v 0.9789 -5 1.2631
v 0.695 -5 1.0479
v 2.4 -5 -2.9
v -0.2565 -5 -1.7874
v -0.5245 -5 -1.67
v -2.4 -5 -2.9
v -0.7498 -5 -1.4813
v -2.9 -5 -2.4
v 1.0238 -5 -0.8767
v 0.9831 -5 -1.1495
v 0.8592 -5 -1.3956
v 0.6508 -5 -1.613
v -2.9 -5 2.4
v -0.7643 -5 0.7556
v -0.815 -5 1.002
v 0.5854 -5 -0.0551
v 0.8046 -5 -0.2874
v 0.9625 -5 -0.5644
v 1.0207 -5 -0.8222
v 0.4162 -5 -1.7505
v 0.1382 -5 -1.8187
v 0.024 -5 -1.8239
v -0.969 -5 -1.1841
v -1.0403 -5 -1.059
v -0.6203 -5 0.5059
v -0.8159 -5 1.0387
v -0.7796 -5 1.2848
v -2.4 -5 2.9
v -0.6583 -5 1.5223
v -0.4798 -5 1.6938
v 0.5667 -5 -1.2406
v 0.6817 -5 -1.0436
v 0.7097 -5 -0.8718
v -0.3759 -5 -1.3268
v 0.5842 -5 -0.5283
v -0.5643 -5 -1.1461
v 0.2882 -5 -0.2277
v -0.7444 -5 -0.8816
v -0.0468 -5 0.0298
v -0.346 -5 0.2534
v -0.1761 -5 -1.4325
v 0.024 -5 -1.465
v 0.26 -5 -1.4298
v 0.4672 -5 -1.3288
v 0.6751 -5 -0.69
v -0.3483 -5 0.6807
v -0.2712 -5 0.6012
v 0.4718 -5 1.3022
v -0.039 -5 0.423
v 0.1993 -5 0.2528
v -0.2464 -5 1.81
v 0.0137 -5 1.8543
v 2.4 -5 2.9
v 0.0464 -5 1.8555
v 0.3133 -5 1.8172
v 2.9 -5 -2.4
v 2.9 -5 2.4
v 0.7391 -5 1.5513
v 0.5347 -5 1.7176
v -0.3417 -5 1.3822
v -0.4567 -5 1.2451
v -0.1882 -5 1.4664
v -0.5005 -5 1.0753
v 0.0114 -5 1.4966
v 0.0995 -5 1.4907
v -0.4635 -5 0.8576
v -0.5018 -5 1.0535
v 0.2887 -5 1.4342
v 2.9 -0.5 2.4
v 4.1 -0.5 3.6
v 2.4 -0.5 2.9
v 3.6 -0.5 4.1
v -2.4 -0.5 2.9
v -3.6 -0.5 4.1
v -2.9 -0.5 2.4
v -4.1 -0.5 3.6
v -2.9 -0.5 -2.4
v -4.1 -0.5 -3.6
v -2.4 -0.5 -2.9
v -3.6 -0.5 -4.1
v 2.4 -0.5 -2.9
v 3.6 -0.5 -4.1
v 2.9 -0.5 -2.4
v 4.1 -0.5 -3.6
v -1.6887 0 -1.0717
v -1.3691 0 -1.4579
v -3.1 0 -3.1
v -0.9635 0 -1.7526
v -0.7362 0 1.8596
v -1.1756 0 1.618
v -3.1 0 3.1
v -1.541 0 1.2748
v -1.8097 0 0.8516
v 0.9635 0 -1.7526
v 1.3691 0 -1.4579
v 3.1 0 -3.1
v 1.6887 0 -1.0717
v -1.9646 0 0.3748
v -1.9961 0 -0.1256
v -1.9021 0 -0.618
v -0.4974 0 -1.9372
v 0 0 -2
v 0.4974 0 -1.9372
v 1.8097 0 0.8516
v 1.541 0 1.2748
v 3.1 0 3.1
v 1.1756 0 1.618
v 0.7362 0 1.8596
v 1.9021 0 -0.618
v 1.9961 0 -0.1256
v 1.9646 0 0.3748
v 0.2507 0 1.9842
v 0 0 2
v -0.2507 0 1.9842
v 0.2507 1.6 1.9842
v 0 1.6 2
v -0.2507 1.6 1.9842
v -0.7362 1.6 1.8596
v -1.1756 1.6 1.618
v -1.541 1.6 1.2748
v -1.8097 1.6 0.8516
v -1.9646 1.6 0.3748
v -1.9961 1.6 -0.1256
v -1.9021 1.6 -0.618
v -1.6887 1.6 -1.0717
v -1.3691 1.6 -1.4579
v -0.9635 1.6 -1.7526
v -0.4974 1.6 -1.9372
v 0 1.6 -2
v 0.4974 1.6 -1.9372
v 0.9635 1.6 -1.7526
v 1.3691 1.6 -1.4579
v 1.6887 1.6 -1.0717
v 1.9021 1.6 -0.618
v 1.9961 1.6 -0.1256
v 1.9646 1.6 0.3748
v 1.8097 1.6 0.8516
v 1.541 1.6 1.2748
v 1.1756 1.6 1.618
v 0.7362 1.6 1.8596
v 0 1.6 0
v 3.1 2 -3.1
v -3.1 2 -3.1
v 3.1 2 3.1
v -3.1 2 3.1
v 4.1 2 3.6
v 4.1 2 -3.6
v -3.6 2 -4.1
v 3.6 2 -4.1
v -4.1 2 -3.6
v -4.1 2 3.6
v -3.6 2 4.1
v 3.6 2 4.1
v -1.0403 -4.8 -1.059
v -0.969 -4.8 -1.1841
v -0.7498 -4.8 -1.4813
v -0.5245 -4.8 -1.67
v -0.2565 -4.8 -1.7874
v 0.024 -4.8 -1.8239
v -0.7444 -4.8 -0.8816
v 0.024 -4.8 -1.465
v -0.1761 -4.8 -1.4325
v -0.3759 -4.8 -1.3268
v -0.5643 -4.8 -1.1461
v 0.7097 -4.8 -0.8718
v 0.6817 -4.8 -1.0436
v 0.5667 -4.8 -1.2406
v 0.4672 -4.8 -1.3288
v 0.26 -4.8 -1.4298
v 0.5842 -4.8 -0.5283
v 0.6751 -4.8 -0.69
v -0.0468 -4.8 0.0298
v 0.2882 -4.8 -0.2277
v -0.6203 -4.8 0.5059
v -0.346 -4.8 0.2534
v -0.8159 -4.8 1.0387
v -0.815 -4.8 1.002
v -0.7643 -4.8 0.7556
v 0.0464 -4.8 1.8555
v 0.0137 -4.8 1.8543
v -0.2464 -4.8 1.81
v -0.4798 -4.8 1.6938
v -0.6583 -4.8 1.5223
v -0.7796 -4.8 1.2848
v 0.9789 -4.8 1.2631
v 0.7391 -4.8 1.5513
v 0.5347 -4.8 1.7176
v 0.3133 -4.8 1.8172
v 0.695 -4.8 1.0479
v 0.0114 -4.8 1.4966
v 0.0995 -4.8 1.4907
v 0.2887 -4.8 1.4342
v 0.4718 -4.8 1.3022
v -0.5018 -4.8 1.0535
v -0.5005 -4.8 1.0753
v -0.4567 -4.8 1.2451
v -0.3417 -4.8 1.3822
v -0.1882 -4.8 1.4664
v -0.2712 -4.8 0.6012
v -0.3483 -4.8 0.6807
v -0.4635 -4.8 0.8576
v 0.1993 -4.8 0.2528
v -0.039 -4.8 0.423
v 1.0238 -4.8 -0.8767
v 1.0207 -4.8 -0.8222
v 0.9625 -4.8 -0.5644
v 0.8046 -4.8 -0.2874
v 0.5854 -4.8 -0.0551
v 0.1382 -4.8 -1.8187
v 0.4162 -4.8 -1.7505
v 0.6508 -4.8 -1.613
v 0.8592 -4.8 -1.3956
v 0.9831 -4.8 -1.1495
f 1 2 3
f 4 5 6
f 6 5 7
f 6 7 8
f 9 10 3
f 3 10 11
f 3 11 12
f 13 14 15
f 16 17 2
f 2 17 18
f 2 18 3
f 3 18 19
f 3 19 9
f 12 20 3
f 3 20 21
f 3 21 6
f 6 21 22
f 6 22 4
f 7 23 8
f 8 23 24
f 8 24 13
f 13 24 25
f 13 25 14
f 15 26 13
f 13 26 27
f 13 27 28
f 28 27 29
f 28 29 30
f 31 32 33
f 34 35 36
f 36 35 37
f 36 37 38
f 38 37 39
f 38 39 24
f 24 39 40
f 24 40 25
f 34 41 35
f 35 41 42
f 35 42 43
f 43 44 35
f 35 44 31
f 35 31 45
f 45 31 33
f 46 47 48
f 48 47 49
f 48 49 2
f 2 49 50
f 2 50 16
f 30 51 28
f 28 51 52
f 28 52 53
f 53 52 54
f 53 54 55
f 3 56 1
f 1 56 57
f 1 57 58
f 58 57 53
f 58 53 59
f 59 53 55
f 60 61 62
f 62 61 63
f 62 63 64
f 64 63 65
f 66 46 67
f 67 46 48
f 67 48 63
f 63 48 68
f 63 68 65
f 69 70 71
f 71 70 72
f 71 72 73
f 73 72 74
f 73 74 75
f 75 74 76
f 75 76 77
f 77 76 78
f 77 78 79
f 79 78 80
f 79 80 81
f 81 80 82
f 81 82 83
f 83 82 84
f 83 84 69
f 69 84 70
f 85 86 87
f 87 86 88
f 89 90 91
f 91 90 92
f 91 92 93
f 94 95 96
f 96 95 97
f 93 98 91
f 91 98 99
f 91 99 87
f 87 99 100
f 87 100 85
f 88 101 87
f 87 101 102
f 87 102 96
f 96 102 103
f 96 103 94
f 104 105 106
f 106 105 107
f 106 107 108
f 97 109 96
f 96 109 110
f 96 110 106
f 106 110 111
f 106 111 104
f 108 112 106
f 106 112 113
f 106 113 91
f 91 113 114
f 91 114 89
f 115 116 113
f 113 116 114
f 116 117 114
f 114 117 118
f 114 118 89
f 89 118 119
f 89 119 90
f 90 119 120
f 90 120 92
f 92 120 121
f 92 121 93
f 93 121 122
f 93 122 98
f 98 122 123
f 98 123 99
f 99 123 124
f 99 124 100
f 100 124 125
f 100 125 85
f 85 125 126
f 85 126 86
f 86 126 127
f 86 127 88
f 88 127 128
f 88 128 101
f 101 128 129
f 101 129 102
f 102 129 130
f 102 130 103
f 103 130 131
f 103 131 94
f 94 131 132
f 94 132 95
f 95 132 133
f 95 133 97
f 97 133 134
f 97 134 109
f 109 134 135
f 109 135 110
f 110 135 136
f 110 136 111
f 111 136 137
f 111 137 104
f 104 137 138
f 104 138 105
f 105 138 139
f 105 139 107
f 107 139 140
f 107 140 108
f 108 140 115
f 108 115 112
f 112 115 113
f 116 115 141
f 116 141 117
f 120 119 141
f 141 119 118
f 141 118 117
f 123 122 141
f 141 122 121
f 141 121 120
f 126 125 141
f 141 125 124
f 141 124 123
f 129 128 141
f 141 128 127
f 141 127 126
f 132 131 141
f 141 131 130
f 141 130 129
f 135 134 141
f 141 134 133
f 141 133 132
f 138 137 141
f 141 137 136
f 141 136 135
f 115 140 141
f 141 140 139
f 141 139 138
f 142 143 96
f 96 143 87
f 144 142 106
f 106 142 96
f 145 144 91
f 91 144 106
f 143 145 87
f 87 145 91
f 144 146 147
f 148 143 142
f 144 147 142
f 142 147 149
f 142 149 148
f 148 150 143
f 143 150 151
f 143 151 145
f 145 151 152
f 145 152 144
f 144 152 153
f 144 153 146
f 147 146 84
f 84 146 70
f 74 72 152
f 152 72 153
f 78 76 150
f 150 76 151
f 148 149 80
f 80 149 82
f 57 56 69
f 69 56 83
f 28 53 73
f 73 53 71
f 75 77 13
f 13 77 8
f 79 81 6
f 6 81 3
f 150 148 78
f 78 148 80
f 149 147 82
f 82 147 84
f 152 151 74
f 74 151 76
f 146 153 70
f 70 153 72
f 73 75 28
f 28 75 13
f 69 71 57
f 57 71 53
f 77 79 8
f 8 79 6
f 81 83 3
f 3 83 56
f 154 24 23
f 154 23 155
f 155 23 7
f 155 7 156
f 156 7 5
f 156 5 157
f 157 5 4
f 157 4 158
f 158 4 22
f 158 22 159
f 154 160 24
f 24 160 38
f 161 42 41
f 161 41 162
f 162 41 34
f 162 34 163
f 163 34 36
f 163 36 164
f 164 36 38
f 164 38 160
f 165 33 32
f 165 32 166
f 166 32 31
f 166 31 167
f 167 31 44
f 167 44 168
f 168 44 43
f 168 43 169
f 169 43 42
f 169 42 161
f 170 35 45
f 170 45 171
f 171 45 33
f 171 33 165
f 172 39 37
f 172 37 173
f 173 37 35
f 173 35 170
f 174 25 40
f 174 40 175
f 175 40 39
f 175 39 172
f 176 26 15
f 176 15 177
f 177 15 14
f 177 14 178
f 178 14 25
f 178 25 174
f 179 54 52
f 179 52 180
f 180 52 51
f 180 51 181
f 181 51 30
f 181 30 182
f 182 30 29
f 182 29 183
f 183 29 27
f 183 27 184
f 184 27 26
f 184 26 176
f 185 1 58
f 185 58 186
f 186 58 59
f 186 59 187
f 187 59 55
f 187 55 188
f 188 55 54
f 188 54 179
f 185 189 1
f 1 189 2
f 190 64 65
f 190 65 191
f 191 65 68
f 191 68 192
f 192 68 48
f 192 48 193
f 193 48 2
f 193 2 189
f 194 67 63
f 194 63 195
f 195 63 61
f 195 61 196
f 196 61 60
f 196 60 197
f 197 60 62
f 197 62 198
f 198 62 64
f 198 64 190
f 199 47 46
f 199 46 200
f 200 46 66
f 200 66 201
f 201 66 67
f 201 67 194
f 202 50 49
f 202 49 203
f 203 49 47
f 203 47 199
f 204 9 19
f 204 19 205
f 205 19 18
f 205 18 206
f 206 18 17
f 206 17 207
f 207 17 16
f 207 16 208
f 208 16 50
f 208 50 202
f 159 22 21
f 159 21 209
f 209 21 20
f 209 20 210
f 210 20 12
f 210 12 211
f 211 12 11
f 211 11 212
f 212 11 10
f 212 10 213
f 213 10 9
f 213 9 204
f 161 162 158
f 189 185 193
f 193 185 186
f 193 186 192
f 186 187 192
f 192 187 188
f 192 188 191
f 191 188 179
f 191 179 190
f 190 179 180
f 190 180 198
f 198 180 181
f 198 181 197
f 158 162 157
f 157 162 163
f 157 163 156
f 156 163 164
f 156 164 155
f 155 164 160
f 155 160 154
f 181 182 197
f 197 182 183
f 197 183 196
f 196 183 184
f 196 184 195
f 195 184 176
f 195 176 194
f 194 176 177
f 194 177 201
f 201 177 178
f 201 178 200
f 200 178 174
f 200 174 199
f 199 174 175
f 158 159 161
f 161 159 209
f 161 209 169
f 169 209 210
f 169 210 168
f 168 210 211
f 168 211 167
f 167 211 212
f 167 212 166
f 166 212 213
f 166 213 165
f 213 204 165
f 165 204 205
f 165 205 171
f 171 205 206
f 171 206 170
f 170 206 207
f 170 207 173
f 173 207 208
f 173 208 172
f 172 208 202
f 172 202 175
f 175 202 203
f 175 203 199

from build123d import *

# Parameters (mm, degrees)
SKETCH1_R           = 2
BOSS_EXTRUDE1_DEPTH = 1.6
SKETCH1_3_W         = 8.2
SKETCH1_3_H         = 8.2
SKETCH1_3_W_2       = 6.2
SKETCH1_3_H_2       = 6.2
BOSS_EXTRUDE2_DEPTH = 2
SKETCH1_4_W         = 8.2
SKETCH1_4_H         = 8.2
BOSS_EXTRUDE3_DEPTH = 0.5
SKETCH3_W           = 5.8
SKETCH3_H           = 5.8
BOSS_EXTRUDE4_DEPTH = 4.5
CHAMFER1_SIZE       = 0.5
CUT_EXTRUDE1_DEPTH  = 0.2


with BuildPart() as part:
    # Sketch1 → Boss-Extrude1 (new body)
    with BuildSketch(Plane(origin=(0, 0, 0), x_dir=(1, 0, 0), z_dir=(0, 1, 0))):
        Circle(SKETCH1_R)
    extrude(amount=BOSS_EXTRUDE1_DEPTH)



with BuildPart() as body_2:
    # Sketch1<3> → Boss-Extrude2 (new body)
    with BuildSketch(Plane(origin=(0, 0, 0), x_dir=(1, 0, 0), z_dir=(0, 1, 0))):
        Rectangle(SKETCH1_3_W, SKETCH1_3_H)
        Rectangle(SKETCH1_3_W_2, SKETCH1_3_H_2, mode=Mode.SUBTRACT)
    extrude(amount=BOSS_EXTRUDE2_DEPTH)


with BuildPart() as part_1:
    add(part.part)

    add(body_2.part)  # Boss-Extrude3 merges body 2
    # Sketch1<4> → Boss-Extrude3 (add)
    with BuildSketch(Plane(origin=(0, 0, 0), x_dir=(1, 0, 0), z_dir=(0, 1, 0))):
        Rectangle(SKETCH1_4_W, SKETCH1_4_H)
    extrude(amount=-BOSS_EXTRUDE3_DEPTH)

    # Sketch3 → Boss-Extrude4 (add)
    with BuildSketch(Plane.XZ.offset(0.5)):
        Rectangle(SKETCH3_W, SKETCH3_H)
    extrude(amount=BOSS_EXTRUDE4_DEPTH)

    # Chamfer1
    chamfer1_edges = [part_1.edges().sort_by_distance(p)[0] for p in [
        (-4.1, 0.75, -4.1),
        (4.1, 0.75, -4.1),
        (-4.1, 0.75, 4.1),
        (4.1, 0.75, 4.1),
        (-2.9, -2.75, 2.9),
        (2.9, -2.75, 2.9),
        (-2.9, -2.75, -2.9),
        (2.9, -2.75, -2.9),
    ]]
    chamfer(chamfer1_edges, length=CHAMFER1_SIZE)

    # Sketch4 → Cut-Extrude1 (cut)
    with BuildSketch(Plane.XZ.offset(5)):
        with BuildLine():
            Line((-1.040290833, -1.059014553), (-0.744417436, -0.881630739))
            add(Edge.make_bspline(
                [(-0.744417436, -0.881630739), (-0.716899199, -0.927695124), (-0.664175318, -1.015952708), (-0.576223959, -1.135210748), (-0.485091048, -1.236572905), (-0.390101714, -1.319449512), (-0.291835766, -1.384698399), (-0.189651712, -1.430900631), (-0.083893902, -1.459716606), (-0.01192008, -1.463216693), (0.024012051, -1.464964072)],
                knots=[0, 0, 0, 0, 1.272034388, 2.437168799, 3.508375237, 4.49857839, 5.41946034, 6.295179144, 7.148887113, 8, 8, 8, 8], degree=3))
            add(Edge.make_bspline(
                [(0.024012051, -1.464964072), (0.054698912, -1.464109399), (0.115535685, -1.462415009), (0.205097928, -1.446134207), (0.29207973, -1.421122078), (0.374688368, -1.385301147), (0.451783982, -1.341962661), (0.519390678, -1.289616484), (0.577836791, -1.231010278), (0.625645905, -1.165627623), (0.662325941, -1.095310475), (0.690518009, -1.023134523), (0.706163083, -0.947965955), (0.708519836, -0.897355492), (0.709709167, -0.871815034)],
                knots=[0, 0, 0, 0, 1.095163259, 2.171163733, 3.241058638, 4.321873601, 5.38011039, 6.391990106, 7.366004449, 8.327778327, 9.272591725, 10.192022065, 11.087607919, 12, 12, 12, 12], degree=3))
            add(Edge.make_bspline(
                [(0.709709167, -0.871815034), (0.708234856, -0.842674184), (0.705237798, -0.783435095), (0.679906318, -0.696035442), (0.640057071, -0.609542872), (0.603294427, -0.556041606), (0.584208365, -0.528265354)],
                knots=[0, 0, 0, 0, 0.938893495, 1.908633276, 2.914225137, 4, 4, 4, 4], degree=3))
            add(Edge.make_bspline(
                [(0.584208365, -0.528265354), (0.568537751, -0.50821853), (0.535639257, -0.466132732), (0.479081744, -0.403487496), (0.41271563, -0.338869077), (0.338812075, -0.269810021), (0.254678986, -0.199522224), (0.162951472, -0.124653946), (0.061287613, -0.048052369), (-0.010011884, 0.003320197), (-0.04680125, 0.029827595)],
                knots=[0, 0, 0, 0, 0.722233717, 1.516239348, 2.393582979, 3.351407094, 4.387010283, 5.505090956, 6.712668013, 8, 8, 8, 8], degree=3))
            add(Edge.make_bspline(
                [(-0.04680125, 0.029827595), (-0.083625246, 0.056056182), (-0.154029923, 0.106203245), (-0.252488505, 0.180627529), (-0.340532968, 0.248671398), (-0.417771985, 0.31097541), (-0.484171581, 0.367548015), (-0.540254992, 0.417845954), (-0.58459355, 0.463229515), (-0.60924913, 0.492670857), (-0.620318878, 0.505889293)],
                knots=[0, 0, 0, 0, 1.452282411, 2.77665338, 3.964542531, 5.026858415, 5.96415736, 6.766646006, 7.446254459, 8, 8, 8, 8], degree=3))
            add(Edge.make_bspline(
                [(-0.620318878, 0.505889293), (-0.635791423, 0.52649033), (-0.66622026, 0.567005034), (-0.706386266, 0.630329892), (-0.740525428, 0.695153157), (-0.76728776, 0.761649022), (-0.789823979, 0.828883951), (-0.80498191, 0.897735196), (-0.814473307, 0.967893815), (-0.815445293, 1.015107315), (-0.815931859, 1.038741857)],
                knots=[0, 0, 0, 0, 1.068054152, 2.10047183, 3.106115577, 4.101338837, 5.06977816, 6.043150881, 7.020423561, 8, 8, 8, 8], degree=3))
            add(Edge.make_bspline(
                [(-0.815931859, 1.038741857), (-0.81462665, 1.075771632), (-0.81204413, 1.149039696), (-0.790203613, 1.256070526), (-0.755730719, 1.358256943), (-0.707435831, 1.454587277), (-0.645178478, 1.542553258), (-0.573132504, 1.623166745), (-0.487321018, 1.690935327), (-0.393168394, 1.750147386), (-0.290112022, 1.796493311), (-0.182121119, 1.831454291), (-0.069024047, 1.851263549), (0.007579088, 1.854106314), (0.046447949, 1.855548749)],
                knots=[0, 0, 0, 0, 1.005424448, 1.989358655, 2.955360095, 3.929531133, 4.905563448, 5.876582895, 6.856512386, 7.866279853, 8.892233794, 9.918561126, 10.94386622, 12, 12, 12, 12], degree=3))
            add(Edge.make_bspline(
                [(0.046447949, 1.855548749), (0.087692049, 1.854126197), (0.169713401, 1.851297196), (0.290362616, 1.826699664), (0.406523333, 1.785998993), (0.499966598, 1.739810335), (0.573099359, 1.693678919), (0.628872092, 1.651659095), (0.685389543, 1.603283986), (0.743107597, 1.54842474), (0.801048257, 1.486577989), (0.860071709, 1.4181673), (0.920315978, 1.343610744), (0.959071838, 1.290386243), (0.978939936, 1.263100832)],
                knots=[0, 0, 0, 0, 1.286793592, 2.559021753, 3.825965368, 5.121522368, 5.803751409, 6.523245864, 7.299691795, 8.125521123, 9.008227632, 9.944561021, 10.946284179, 12, 12, 12, 12], degree=3))
            Line((0.978939936, 1.263100832), (0.694985609, 1.047856441))
            add(Edge.make_bspline(
                [(0.694985609, 1.047856441), (0.677839677, 1.069945131), (0.644820619, 1.112482784), (0.594691133, 1.1720541), (0.547442485, 1.22647058), (0.500892085, 1.273735708), (0.457498453, 1.316437841), (0.415381411, 1.352997598), (0.37514706, 1.383773193), (0.324430149, 1.416616753), (0.260712431, 1.449173257), (0.180727895, 1.476722335), (0.09714162, 1.493277397), (0.040211988, 1.495466284), (0.011391859, 1.49657439)],
                knots=[0, 0, 0, 0, 1.181633172, 2.275549214, 3.290209073, 4.226197932, 5.078386478, 5.862611352, 6.581680152, 7.217281963, 8.414376989, 9.595101626, 10.782541182, 12, 12, 12, 12], degree=3))
            add(Edge.make_bspline(
                [(0.011391859, 1.49657439), (-0.024764663, 1.49536269), (-0.094489111, 1.49302604), (-0.193479347, 1.467506055), (-0.282573272, 1.427324195), (-0.359125837, 1.371009217), (-0.422862814, 1.304288224), (-0.468968273, 1.227509369), (-0.496718437, 1.142726966), (-0.500104717, 1.08358531), (-0.501829295, 1.053465415)],
                knots=[0, 0, 0, 0, 1.14458467, 2.207223713, 3.21896685, 4.227309161, 5.202851033, 6.127160689, 7.046193047, 8, 8, 8, 8], degree=3))
            add(Edge.make_bspline(
                [(-0.501829295, 1.053465415), (-0.501436168, 1.034713937), (-0.500649272, 0.997180317), (-0.489674474, 0.941728895), (-0.475575145, 0.886417556), (-0.453232514, 0.831494973), (-0.42238721, 0.776000614), (-0.381882034, 0.718978876), (-0.330868722, 0.659927168), (-0.29179171, 0.621519794), (-0.271160224, 0.601241857)],
                knots=[0, 0, 0, 0, 0.858281714, 1.717966888, 2.583508476, 3.4729293, 4.427298488, 5.488583878, 6.674047936, 8, 8, 8, 8], degree=3))
            add(Edge.make_bspline(
                [(-0.271160224, 0.601241857), (-0.263498852, 0.594404832), (-0.245297185, 0.578161623), (-0.212021259, 0.551569343), (-0.168078461, 0.51876657), (-0.11461626, 0.478179254), (-0.050648898, 0.431097792), (0.023830658, 0.37812418), (0.107992191, 0.317538721), (0.167714107, 0.27518118), (0.1992925, 0.252784325)],
                knots=[0, 0, 0, 0, 0.420754252, 0.999615792, 1.744751191, 2.668019286, 3.750313428, 4.999500688, 6.413464383, 8, 8, 8, 8], degree=3))
            add(Edge.make_bspline(
                [(0.1992925, 0.252784325), (0.237278413, 0.225142966), (0.31083287, 0.171619304), (0.41549045, 0.091203624), (0.510384258, 0.012555856), (0.595847461, -0.063821752), (0.67272437, -0.137349845), (0.74016209, -0.208913025), (0.798847771, -0.277998598), (0.862026989, -0.366571173), (0.926584809, -0.475352258), (0.982026316, -0.608630496), (1.016984664, -0.742426817), (1.021556179, -0.832353653), (1.023811731, -0.876722886)],
                knots=[0, 0, 0, 0, 1.163667725, 2.253281268, 3.268753668, 4.215851969, 5.092017293, 5.902905408, 6.650798638, 7.335211899, 8.59617414, 9.77448103, 10.901945474, 12, 12, 12, 12], degree=3))
            add(Edge.make_bspline(
                [(1.023811731, -0.876722886), (1.023154593, -0.908101251), (1.021853078, -0.970248635), (1.006892164, -1.061503712), (0.984972499, -1.150134581), (0.951935265, -1.235045694), (0.911612106, -1.317790456), (0.860445859, -1.396198357), (0.801138174, -1.472004755), (0.733104409, -1.543188247), (0.658658507, -1.608534443), (0.579974812, -1.666663504), (0.496924539, -1.715131828), (0.409958222, -1.75468267), (0.319055886, -1.785616187), (0.224248102, -1.808029056), (0.125378591, -1.821784767), (0.058178109, -1.823212529), (0.024012051, -1.823938431)],
                knots=[0, 0, 0, 0, 0.983748083, 1.948392443, 2.894712957, 3.844097841, 4.80183111, 5.778335162, 6.776009319, 7.81870978, 8.863265674, 9.881300176, 10.883814829, 11.87499822, 12.874611388, 13.892143829, 14.928324115, 16, 16, 16, 16], degree=3))
            add(Edge.make_bspline(
                [(0.024012051, -1.823938431), (-0.002423292, -1.823427249), (-0.054961052, -1.822411324), (-0.132670534, -1.813430044), (-0.208810123, -1.80072294), (-0.282424405, -1.78054887), (-0.354461816, -1.756071893), (-0.424609051, -1.72593356), (-0.492900105, -1.689816359), (-0.559717688, -1.648521334), (-0.624891862, -1.60046359), (-0.68781133, -1.544490093), (-0.750540516, -1.482144588), (-0.811227912, -1.411734025), (-0.871101056, -1.334395942), (-0.928979466, -1.249406759), (-0.986061184, -1.157229405), (-1.021876651, -1.092364319), (-1.040290833, -1.059014553)],
                knots=[0, 0, 0, 0, 0.915332311, 1.819136955, 2.706846663, 3.586547465, 4.459518054, 5.340707479, 6.227863349, 7.133153174, 8.059268498, 9.028702269, 10.047606654, 11.120612155, 12.245963614, 13.433783089, 14.680604001, 16, 16, 16, 16], degree=3))
        make_face()
    extrude(amount=-CUT_EXTRUDE1_DEPTH, mode=Mode.SUBTRACT)


solid = part_1.part
